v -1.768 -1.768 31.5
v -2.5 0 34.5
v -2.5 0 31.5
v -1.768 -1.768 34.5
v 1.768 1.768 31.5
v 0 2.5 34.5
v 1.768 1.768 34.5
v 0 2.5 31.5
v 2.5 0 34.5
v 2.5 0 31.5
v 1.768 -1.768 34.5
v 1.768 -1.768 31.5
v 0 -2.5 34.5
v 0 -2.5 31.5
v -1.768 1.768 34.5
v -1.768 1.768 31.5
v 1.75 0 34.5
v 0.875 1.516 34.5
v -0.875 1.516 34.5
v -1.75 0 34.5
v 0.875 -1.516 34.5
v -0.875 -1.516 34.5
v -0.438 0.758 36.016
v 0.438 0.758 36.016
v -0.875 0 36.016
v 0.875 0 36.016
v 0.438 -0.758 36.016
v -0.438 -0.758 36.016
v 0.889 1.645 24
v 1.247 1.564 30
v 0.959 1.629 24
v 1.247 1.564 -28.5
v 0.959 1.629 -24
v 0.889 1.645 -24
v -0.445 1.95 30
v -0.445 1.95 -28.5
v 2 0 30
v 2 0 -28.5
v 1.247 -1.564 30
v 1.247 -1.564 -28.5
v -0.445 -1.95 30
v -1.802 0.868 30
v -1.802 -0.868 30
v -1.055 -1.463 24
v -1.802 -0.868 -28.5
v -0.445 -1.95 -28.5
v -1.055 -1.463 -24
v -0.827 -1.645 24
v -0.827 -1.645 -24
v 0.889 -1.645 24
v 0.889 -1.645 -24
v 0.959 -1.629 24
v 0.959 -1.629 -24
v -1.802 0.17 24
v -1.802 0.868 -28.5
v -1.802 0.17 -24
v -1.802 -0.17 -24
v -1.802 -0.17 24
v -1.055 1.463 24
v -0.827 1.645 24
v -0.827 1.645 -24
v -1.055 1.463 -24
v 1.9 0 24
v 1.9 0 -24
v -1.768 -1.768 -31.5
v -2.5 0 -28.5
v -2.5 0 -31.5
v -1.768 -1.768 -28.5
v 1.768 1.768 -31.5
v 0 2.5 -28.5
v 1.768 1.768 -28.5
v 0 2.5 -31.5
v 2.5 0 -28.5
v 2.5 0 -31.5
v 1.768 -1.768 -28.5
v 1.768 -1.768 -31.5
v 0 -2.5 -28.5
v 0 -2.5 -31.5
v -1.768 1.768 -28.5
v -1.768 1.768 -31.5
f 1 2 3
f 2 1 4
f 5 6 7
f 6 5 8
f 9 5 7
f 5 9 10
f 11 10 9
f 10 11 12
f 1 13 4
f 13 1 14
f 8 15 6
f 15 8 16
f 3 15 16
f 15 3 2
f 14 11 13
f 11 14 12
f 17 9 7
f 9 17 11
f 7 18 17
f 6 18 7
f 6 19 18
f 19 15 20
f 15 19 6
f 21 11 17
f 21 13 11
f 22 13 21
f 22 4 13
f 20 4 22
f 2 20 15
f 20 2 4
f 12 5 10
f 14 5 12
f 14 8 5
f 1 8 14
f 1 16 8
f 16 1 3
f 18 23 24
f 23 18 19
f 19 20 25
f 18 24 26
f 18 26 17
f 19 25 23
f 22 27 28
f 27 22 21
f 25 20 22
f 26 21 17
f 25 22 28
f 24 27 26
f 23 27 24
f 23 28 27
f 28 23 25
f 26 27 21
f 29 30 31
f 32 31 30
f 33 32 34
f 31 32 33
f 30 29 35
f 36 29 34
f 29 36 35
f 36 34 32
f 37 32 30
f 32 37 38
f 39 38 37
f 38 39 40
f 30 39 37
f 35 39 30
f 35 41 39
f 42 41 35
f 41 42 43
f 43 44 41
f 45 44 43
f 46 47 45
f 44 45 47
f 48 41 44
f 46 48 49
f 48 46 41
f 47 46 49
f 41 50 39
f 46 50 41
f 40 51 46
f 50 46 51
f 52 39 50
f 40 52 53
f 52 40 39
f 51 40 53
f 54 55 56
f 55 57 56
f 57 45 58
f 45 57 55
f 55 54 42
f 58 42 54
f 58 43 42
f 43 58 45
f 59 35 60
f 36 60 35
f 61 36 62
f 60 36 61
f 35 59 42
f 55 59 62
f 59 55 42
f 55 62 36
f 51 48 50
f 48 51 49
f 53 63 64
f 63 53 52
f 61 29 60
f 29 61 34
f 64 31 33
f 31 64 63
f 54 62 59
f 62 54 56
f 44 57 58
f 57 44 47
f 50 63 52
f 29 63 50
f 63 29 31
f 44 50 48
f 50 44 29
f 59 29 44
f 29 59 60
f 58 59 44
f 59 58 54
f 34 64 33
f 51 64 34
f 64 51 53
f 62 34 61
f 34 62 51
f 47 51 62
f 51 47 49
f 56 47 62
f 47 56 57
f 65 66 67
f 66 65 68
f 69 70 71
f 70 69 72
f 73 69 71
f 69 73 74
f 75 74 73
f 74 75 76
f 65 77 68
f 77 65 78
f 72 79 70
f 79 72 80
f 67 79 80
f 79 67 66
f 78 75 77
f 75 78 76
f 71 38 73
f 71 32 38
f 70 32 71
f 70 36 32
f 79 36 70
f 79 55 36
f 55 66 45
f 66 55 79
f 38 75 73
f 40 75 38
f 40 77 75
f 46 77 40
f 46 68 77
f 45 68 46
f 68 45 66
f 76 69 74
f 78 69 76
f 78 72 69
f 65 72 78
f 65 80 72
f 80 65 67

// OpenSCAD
// Parameters for the rod
rod_length = 60; // Increased length of the rod to match the original model
rod_radius = 2;  // Radius of the rod
taper_radius = 1.9; // Slightly reduced taper to make it less pronounced
taper_length = 6; // Adjusted length of the tapered section to match the original model

// Parameters for the end caps
end_cap_radius = 2.5; // Reduced radius of the end cap to match the original model
end_cap_height = 3; // Reduced height of the end cap to flatten the dome

// Function to create a tapered rod
module tapered_rod() {
    difference() {
        // Main rod
        cylinder(h = rod_length, r1 = rod_radius, r2 = rod_radius, center = true);
        // Tapered section
        translate([0, 0, -rod_length / 2 + taper_length])
            cylinder(h = rod_length - 2 * taper_length, r1 = taper_radius, r2 = taper_radius, center = false);
    }
}

// Function to create an end cap
module end_cap() {
    union() {
        // Cylindrical base
        cylinder(h = end_cap_height, r = end_cap_radius, center = false);
        // Flattened dome
        translate([0, 0, end_cap_height])
            sphere(r = end_cap_radius * 0.7); // Flattened dome by reducing the sphere radius
    }
}

// Assemble the model
module flexible_coupling() {
    // Top end cap
    translate([0, 0, rod_length / 2 + end_cap_height / 2])
        end_cap();
    // Rod
    tapered_rod();
    // Bottom end cap
    translate([0, 0, -rod_length / 2 - end_cap_height / 2])
        end_cap();
}

// Render the flexible coupling
flexible_coupling();
